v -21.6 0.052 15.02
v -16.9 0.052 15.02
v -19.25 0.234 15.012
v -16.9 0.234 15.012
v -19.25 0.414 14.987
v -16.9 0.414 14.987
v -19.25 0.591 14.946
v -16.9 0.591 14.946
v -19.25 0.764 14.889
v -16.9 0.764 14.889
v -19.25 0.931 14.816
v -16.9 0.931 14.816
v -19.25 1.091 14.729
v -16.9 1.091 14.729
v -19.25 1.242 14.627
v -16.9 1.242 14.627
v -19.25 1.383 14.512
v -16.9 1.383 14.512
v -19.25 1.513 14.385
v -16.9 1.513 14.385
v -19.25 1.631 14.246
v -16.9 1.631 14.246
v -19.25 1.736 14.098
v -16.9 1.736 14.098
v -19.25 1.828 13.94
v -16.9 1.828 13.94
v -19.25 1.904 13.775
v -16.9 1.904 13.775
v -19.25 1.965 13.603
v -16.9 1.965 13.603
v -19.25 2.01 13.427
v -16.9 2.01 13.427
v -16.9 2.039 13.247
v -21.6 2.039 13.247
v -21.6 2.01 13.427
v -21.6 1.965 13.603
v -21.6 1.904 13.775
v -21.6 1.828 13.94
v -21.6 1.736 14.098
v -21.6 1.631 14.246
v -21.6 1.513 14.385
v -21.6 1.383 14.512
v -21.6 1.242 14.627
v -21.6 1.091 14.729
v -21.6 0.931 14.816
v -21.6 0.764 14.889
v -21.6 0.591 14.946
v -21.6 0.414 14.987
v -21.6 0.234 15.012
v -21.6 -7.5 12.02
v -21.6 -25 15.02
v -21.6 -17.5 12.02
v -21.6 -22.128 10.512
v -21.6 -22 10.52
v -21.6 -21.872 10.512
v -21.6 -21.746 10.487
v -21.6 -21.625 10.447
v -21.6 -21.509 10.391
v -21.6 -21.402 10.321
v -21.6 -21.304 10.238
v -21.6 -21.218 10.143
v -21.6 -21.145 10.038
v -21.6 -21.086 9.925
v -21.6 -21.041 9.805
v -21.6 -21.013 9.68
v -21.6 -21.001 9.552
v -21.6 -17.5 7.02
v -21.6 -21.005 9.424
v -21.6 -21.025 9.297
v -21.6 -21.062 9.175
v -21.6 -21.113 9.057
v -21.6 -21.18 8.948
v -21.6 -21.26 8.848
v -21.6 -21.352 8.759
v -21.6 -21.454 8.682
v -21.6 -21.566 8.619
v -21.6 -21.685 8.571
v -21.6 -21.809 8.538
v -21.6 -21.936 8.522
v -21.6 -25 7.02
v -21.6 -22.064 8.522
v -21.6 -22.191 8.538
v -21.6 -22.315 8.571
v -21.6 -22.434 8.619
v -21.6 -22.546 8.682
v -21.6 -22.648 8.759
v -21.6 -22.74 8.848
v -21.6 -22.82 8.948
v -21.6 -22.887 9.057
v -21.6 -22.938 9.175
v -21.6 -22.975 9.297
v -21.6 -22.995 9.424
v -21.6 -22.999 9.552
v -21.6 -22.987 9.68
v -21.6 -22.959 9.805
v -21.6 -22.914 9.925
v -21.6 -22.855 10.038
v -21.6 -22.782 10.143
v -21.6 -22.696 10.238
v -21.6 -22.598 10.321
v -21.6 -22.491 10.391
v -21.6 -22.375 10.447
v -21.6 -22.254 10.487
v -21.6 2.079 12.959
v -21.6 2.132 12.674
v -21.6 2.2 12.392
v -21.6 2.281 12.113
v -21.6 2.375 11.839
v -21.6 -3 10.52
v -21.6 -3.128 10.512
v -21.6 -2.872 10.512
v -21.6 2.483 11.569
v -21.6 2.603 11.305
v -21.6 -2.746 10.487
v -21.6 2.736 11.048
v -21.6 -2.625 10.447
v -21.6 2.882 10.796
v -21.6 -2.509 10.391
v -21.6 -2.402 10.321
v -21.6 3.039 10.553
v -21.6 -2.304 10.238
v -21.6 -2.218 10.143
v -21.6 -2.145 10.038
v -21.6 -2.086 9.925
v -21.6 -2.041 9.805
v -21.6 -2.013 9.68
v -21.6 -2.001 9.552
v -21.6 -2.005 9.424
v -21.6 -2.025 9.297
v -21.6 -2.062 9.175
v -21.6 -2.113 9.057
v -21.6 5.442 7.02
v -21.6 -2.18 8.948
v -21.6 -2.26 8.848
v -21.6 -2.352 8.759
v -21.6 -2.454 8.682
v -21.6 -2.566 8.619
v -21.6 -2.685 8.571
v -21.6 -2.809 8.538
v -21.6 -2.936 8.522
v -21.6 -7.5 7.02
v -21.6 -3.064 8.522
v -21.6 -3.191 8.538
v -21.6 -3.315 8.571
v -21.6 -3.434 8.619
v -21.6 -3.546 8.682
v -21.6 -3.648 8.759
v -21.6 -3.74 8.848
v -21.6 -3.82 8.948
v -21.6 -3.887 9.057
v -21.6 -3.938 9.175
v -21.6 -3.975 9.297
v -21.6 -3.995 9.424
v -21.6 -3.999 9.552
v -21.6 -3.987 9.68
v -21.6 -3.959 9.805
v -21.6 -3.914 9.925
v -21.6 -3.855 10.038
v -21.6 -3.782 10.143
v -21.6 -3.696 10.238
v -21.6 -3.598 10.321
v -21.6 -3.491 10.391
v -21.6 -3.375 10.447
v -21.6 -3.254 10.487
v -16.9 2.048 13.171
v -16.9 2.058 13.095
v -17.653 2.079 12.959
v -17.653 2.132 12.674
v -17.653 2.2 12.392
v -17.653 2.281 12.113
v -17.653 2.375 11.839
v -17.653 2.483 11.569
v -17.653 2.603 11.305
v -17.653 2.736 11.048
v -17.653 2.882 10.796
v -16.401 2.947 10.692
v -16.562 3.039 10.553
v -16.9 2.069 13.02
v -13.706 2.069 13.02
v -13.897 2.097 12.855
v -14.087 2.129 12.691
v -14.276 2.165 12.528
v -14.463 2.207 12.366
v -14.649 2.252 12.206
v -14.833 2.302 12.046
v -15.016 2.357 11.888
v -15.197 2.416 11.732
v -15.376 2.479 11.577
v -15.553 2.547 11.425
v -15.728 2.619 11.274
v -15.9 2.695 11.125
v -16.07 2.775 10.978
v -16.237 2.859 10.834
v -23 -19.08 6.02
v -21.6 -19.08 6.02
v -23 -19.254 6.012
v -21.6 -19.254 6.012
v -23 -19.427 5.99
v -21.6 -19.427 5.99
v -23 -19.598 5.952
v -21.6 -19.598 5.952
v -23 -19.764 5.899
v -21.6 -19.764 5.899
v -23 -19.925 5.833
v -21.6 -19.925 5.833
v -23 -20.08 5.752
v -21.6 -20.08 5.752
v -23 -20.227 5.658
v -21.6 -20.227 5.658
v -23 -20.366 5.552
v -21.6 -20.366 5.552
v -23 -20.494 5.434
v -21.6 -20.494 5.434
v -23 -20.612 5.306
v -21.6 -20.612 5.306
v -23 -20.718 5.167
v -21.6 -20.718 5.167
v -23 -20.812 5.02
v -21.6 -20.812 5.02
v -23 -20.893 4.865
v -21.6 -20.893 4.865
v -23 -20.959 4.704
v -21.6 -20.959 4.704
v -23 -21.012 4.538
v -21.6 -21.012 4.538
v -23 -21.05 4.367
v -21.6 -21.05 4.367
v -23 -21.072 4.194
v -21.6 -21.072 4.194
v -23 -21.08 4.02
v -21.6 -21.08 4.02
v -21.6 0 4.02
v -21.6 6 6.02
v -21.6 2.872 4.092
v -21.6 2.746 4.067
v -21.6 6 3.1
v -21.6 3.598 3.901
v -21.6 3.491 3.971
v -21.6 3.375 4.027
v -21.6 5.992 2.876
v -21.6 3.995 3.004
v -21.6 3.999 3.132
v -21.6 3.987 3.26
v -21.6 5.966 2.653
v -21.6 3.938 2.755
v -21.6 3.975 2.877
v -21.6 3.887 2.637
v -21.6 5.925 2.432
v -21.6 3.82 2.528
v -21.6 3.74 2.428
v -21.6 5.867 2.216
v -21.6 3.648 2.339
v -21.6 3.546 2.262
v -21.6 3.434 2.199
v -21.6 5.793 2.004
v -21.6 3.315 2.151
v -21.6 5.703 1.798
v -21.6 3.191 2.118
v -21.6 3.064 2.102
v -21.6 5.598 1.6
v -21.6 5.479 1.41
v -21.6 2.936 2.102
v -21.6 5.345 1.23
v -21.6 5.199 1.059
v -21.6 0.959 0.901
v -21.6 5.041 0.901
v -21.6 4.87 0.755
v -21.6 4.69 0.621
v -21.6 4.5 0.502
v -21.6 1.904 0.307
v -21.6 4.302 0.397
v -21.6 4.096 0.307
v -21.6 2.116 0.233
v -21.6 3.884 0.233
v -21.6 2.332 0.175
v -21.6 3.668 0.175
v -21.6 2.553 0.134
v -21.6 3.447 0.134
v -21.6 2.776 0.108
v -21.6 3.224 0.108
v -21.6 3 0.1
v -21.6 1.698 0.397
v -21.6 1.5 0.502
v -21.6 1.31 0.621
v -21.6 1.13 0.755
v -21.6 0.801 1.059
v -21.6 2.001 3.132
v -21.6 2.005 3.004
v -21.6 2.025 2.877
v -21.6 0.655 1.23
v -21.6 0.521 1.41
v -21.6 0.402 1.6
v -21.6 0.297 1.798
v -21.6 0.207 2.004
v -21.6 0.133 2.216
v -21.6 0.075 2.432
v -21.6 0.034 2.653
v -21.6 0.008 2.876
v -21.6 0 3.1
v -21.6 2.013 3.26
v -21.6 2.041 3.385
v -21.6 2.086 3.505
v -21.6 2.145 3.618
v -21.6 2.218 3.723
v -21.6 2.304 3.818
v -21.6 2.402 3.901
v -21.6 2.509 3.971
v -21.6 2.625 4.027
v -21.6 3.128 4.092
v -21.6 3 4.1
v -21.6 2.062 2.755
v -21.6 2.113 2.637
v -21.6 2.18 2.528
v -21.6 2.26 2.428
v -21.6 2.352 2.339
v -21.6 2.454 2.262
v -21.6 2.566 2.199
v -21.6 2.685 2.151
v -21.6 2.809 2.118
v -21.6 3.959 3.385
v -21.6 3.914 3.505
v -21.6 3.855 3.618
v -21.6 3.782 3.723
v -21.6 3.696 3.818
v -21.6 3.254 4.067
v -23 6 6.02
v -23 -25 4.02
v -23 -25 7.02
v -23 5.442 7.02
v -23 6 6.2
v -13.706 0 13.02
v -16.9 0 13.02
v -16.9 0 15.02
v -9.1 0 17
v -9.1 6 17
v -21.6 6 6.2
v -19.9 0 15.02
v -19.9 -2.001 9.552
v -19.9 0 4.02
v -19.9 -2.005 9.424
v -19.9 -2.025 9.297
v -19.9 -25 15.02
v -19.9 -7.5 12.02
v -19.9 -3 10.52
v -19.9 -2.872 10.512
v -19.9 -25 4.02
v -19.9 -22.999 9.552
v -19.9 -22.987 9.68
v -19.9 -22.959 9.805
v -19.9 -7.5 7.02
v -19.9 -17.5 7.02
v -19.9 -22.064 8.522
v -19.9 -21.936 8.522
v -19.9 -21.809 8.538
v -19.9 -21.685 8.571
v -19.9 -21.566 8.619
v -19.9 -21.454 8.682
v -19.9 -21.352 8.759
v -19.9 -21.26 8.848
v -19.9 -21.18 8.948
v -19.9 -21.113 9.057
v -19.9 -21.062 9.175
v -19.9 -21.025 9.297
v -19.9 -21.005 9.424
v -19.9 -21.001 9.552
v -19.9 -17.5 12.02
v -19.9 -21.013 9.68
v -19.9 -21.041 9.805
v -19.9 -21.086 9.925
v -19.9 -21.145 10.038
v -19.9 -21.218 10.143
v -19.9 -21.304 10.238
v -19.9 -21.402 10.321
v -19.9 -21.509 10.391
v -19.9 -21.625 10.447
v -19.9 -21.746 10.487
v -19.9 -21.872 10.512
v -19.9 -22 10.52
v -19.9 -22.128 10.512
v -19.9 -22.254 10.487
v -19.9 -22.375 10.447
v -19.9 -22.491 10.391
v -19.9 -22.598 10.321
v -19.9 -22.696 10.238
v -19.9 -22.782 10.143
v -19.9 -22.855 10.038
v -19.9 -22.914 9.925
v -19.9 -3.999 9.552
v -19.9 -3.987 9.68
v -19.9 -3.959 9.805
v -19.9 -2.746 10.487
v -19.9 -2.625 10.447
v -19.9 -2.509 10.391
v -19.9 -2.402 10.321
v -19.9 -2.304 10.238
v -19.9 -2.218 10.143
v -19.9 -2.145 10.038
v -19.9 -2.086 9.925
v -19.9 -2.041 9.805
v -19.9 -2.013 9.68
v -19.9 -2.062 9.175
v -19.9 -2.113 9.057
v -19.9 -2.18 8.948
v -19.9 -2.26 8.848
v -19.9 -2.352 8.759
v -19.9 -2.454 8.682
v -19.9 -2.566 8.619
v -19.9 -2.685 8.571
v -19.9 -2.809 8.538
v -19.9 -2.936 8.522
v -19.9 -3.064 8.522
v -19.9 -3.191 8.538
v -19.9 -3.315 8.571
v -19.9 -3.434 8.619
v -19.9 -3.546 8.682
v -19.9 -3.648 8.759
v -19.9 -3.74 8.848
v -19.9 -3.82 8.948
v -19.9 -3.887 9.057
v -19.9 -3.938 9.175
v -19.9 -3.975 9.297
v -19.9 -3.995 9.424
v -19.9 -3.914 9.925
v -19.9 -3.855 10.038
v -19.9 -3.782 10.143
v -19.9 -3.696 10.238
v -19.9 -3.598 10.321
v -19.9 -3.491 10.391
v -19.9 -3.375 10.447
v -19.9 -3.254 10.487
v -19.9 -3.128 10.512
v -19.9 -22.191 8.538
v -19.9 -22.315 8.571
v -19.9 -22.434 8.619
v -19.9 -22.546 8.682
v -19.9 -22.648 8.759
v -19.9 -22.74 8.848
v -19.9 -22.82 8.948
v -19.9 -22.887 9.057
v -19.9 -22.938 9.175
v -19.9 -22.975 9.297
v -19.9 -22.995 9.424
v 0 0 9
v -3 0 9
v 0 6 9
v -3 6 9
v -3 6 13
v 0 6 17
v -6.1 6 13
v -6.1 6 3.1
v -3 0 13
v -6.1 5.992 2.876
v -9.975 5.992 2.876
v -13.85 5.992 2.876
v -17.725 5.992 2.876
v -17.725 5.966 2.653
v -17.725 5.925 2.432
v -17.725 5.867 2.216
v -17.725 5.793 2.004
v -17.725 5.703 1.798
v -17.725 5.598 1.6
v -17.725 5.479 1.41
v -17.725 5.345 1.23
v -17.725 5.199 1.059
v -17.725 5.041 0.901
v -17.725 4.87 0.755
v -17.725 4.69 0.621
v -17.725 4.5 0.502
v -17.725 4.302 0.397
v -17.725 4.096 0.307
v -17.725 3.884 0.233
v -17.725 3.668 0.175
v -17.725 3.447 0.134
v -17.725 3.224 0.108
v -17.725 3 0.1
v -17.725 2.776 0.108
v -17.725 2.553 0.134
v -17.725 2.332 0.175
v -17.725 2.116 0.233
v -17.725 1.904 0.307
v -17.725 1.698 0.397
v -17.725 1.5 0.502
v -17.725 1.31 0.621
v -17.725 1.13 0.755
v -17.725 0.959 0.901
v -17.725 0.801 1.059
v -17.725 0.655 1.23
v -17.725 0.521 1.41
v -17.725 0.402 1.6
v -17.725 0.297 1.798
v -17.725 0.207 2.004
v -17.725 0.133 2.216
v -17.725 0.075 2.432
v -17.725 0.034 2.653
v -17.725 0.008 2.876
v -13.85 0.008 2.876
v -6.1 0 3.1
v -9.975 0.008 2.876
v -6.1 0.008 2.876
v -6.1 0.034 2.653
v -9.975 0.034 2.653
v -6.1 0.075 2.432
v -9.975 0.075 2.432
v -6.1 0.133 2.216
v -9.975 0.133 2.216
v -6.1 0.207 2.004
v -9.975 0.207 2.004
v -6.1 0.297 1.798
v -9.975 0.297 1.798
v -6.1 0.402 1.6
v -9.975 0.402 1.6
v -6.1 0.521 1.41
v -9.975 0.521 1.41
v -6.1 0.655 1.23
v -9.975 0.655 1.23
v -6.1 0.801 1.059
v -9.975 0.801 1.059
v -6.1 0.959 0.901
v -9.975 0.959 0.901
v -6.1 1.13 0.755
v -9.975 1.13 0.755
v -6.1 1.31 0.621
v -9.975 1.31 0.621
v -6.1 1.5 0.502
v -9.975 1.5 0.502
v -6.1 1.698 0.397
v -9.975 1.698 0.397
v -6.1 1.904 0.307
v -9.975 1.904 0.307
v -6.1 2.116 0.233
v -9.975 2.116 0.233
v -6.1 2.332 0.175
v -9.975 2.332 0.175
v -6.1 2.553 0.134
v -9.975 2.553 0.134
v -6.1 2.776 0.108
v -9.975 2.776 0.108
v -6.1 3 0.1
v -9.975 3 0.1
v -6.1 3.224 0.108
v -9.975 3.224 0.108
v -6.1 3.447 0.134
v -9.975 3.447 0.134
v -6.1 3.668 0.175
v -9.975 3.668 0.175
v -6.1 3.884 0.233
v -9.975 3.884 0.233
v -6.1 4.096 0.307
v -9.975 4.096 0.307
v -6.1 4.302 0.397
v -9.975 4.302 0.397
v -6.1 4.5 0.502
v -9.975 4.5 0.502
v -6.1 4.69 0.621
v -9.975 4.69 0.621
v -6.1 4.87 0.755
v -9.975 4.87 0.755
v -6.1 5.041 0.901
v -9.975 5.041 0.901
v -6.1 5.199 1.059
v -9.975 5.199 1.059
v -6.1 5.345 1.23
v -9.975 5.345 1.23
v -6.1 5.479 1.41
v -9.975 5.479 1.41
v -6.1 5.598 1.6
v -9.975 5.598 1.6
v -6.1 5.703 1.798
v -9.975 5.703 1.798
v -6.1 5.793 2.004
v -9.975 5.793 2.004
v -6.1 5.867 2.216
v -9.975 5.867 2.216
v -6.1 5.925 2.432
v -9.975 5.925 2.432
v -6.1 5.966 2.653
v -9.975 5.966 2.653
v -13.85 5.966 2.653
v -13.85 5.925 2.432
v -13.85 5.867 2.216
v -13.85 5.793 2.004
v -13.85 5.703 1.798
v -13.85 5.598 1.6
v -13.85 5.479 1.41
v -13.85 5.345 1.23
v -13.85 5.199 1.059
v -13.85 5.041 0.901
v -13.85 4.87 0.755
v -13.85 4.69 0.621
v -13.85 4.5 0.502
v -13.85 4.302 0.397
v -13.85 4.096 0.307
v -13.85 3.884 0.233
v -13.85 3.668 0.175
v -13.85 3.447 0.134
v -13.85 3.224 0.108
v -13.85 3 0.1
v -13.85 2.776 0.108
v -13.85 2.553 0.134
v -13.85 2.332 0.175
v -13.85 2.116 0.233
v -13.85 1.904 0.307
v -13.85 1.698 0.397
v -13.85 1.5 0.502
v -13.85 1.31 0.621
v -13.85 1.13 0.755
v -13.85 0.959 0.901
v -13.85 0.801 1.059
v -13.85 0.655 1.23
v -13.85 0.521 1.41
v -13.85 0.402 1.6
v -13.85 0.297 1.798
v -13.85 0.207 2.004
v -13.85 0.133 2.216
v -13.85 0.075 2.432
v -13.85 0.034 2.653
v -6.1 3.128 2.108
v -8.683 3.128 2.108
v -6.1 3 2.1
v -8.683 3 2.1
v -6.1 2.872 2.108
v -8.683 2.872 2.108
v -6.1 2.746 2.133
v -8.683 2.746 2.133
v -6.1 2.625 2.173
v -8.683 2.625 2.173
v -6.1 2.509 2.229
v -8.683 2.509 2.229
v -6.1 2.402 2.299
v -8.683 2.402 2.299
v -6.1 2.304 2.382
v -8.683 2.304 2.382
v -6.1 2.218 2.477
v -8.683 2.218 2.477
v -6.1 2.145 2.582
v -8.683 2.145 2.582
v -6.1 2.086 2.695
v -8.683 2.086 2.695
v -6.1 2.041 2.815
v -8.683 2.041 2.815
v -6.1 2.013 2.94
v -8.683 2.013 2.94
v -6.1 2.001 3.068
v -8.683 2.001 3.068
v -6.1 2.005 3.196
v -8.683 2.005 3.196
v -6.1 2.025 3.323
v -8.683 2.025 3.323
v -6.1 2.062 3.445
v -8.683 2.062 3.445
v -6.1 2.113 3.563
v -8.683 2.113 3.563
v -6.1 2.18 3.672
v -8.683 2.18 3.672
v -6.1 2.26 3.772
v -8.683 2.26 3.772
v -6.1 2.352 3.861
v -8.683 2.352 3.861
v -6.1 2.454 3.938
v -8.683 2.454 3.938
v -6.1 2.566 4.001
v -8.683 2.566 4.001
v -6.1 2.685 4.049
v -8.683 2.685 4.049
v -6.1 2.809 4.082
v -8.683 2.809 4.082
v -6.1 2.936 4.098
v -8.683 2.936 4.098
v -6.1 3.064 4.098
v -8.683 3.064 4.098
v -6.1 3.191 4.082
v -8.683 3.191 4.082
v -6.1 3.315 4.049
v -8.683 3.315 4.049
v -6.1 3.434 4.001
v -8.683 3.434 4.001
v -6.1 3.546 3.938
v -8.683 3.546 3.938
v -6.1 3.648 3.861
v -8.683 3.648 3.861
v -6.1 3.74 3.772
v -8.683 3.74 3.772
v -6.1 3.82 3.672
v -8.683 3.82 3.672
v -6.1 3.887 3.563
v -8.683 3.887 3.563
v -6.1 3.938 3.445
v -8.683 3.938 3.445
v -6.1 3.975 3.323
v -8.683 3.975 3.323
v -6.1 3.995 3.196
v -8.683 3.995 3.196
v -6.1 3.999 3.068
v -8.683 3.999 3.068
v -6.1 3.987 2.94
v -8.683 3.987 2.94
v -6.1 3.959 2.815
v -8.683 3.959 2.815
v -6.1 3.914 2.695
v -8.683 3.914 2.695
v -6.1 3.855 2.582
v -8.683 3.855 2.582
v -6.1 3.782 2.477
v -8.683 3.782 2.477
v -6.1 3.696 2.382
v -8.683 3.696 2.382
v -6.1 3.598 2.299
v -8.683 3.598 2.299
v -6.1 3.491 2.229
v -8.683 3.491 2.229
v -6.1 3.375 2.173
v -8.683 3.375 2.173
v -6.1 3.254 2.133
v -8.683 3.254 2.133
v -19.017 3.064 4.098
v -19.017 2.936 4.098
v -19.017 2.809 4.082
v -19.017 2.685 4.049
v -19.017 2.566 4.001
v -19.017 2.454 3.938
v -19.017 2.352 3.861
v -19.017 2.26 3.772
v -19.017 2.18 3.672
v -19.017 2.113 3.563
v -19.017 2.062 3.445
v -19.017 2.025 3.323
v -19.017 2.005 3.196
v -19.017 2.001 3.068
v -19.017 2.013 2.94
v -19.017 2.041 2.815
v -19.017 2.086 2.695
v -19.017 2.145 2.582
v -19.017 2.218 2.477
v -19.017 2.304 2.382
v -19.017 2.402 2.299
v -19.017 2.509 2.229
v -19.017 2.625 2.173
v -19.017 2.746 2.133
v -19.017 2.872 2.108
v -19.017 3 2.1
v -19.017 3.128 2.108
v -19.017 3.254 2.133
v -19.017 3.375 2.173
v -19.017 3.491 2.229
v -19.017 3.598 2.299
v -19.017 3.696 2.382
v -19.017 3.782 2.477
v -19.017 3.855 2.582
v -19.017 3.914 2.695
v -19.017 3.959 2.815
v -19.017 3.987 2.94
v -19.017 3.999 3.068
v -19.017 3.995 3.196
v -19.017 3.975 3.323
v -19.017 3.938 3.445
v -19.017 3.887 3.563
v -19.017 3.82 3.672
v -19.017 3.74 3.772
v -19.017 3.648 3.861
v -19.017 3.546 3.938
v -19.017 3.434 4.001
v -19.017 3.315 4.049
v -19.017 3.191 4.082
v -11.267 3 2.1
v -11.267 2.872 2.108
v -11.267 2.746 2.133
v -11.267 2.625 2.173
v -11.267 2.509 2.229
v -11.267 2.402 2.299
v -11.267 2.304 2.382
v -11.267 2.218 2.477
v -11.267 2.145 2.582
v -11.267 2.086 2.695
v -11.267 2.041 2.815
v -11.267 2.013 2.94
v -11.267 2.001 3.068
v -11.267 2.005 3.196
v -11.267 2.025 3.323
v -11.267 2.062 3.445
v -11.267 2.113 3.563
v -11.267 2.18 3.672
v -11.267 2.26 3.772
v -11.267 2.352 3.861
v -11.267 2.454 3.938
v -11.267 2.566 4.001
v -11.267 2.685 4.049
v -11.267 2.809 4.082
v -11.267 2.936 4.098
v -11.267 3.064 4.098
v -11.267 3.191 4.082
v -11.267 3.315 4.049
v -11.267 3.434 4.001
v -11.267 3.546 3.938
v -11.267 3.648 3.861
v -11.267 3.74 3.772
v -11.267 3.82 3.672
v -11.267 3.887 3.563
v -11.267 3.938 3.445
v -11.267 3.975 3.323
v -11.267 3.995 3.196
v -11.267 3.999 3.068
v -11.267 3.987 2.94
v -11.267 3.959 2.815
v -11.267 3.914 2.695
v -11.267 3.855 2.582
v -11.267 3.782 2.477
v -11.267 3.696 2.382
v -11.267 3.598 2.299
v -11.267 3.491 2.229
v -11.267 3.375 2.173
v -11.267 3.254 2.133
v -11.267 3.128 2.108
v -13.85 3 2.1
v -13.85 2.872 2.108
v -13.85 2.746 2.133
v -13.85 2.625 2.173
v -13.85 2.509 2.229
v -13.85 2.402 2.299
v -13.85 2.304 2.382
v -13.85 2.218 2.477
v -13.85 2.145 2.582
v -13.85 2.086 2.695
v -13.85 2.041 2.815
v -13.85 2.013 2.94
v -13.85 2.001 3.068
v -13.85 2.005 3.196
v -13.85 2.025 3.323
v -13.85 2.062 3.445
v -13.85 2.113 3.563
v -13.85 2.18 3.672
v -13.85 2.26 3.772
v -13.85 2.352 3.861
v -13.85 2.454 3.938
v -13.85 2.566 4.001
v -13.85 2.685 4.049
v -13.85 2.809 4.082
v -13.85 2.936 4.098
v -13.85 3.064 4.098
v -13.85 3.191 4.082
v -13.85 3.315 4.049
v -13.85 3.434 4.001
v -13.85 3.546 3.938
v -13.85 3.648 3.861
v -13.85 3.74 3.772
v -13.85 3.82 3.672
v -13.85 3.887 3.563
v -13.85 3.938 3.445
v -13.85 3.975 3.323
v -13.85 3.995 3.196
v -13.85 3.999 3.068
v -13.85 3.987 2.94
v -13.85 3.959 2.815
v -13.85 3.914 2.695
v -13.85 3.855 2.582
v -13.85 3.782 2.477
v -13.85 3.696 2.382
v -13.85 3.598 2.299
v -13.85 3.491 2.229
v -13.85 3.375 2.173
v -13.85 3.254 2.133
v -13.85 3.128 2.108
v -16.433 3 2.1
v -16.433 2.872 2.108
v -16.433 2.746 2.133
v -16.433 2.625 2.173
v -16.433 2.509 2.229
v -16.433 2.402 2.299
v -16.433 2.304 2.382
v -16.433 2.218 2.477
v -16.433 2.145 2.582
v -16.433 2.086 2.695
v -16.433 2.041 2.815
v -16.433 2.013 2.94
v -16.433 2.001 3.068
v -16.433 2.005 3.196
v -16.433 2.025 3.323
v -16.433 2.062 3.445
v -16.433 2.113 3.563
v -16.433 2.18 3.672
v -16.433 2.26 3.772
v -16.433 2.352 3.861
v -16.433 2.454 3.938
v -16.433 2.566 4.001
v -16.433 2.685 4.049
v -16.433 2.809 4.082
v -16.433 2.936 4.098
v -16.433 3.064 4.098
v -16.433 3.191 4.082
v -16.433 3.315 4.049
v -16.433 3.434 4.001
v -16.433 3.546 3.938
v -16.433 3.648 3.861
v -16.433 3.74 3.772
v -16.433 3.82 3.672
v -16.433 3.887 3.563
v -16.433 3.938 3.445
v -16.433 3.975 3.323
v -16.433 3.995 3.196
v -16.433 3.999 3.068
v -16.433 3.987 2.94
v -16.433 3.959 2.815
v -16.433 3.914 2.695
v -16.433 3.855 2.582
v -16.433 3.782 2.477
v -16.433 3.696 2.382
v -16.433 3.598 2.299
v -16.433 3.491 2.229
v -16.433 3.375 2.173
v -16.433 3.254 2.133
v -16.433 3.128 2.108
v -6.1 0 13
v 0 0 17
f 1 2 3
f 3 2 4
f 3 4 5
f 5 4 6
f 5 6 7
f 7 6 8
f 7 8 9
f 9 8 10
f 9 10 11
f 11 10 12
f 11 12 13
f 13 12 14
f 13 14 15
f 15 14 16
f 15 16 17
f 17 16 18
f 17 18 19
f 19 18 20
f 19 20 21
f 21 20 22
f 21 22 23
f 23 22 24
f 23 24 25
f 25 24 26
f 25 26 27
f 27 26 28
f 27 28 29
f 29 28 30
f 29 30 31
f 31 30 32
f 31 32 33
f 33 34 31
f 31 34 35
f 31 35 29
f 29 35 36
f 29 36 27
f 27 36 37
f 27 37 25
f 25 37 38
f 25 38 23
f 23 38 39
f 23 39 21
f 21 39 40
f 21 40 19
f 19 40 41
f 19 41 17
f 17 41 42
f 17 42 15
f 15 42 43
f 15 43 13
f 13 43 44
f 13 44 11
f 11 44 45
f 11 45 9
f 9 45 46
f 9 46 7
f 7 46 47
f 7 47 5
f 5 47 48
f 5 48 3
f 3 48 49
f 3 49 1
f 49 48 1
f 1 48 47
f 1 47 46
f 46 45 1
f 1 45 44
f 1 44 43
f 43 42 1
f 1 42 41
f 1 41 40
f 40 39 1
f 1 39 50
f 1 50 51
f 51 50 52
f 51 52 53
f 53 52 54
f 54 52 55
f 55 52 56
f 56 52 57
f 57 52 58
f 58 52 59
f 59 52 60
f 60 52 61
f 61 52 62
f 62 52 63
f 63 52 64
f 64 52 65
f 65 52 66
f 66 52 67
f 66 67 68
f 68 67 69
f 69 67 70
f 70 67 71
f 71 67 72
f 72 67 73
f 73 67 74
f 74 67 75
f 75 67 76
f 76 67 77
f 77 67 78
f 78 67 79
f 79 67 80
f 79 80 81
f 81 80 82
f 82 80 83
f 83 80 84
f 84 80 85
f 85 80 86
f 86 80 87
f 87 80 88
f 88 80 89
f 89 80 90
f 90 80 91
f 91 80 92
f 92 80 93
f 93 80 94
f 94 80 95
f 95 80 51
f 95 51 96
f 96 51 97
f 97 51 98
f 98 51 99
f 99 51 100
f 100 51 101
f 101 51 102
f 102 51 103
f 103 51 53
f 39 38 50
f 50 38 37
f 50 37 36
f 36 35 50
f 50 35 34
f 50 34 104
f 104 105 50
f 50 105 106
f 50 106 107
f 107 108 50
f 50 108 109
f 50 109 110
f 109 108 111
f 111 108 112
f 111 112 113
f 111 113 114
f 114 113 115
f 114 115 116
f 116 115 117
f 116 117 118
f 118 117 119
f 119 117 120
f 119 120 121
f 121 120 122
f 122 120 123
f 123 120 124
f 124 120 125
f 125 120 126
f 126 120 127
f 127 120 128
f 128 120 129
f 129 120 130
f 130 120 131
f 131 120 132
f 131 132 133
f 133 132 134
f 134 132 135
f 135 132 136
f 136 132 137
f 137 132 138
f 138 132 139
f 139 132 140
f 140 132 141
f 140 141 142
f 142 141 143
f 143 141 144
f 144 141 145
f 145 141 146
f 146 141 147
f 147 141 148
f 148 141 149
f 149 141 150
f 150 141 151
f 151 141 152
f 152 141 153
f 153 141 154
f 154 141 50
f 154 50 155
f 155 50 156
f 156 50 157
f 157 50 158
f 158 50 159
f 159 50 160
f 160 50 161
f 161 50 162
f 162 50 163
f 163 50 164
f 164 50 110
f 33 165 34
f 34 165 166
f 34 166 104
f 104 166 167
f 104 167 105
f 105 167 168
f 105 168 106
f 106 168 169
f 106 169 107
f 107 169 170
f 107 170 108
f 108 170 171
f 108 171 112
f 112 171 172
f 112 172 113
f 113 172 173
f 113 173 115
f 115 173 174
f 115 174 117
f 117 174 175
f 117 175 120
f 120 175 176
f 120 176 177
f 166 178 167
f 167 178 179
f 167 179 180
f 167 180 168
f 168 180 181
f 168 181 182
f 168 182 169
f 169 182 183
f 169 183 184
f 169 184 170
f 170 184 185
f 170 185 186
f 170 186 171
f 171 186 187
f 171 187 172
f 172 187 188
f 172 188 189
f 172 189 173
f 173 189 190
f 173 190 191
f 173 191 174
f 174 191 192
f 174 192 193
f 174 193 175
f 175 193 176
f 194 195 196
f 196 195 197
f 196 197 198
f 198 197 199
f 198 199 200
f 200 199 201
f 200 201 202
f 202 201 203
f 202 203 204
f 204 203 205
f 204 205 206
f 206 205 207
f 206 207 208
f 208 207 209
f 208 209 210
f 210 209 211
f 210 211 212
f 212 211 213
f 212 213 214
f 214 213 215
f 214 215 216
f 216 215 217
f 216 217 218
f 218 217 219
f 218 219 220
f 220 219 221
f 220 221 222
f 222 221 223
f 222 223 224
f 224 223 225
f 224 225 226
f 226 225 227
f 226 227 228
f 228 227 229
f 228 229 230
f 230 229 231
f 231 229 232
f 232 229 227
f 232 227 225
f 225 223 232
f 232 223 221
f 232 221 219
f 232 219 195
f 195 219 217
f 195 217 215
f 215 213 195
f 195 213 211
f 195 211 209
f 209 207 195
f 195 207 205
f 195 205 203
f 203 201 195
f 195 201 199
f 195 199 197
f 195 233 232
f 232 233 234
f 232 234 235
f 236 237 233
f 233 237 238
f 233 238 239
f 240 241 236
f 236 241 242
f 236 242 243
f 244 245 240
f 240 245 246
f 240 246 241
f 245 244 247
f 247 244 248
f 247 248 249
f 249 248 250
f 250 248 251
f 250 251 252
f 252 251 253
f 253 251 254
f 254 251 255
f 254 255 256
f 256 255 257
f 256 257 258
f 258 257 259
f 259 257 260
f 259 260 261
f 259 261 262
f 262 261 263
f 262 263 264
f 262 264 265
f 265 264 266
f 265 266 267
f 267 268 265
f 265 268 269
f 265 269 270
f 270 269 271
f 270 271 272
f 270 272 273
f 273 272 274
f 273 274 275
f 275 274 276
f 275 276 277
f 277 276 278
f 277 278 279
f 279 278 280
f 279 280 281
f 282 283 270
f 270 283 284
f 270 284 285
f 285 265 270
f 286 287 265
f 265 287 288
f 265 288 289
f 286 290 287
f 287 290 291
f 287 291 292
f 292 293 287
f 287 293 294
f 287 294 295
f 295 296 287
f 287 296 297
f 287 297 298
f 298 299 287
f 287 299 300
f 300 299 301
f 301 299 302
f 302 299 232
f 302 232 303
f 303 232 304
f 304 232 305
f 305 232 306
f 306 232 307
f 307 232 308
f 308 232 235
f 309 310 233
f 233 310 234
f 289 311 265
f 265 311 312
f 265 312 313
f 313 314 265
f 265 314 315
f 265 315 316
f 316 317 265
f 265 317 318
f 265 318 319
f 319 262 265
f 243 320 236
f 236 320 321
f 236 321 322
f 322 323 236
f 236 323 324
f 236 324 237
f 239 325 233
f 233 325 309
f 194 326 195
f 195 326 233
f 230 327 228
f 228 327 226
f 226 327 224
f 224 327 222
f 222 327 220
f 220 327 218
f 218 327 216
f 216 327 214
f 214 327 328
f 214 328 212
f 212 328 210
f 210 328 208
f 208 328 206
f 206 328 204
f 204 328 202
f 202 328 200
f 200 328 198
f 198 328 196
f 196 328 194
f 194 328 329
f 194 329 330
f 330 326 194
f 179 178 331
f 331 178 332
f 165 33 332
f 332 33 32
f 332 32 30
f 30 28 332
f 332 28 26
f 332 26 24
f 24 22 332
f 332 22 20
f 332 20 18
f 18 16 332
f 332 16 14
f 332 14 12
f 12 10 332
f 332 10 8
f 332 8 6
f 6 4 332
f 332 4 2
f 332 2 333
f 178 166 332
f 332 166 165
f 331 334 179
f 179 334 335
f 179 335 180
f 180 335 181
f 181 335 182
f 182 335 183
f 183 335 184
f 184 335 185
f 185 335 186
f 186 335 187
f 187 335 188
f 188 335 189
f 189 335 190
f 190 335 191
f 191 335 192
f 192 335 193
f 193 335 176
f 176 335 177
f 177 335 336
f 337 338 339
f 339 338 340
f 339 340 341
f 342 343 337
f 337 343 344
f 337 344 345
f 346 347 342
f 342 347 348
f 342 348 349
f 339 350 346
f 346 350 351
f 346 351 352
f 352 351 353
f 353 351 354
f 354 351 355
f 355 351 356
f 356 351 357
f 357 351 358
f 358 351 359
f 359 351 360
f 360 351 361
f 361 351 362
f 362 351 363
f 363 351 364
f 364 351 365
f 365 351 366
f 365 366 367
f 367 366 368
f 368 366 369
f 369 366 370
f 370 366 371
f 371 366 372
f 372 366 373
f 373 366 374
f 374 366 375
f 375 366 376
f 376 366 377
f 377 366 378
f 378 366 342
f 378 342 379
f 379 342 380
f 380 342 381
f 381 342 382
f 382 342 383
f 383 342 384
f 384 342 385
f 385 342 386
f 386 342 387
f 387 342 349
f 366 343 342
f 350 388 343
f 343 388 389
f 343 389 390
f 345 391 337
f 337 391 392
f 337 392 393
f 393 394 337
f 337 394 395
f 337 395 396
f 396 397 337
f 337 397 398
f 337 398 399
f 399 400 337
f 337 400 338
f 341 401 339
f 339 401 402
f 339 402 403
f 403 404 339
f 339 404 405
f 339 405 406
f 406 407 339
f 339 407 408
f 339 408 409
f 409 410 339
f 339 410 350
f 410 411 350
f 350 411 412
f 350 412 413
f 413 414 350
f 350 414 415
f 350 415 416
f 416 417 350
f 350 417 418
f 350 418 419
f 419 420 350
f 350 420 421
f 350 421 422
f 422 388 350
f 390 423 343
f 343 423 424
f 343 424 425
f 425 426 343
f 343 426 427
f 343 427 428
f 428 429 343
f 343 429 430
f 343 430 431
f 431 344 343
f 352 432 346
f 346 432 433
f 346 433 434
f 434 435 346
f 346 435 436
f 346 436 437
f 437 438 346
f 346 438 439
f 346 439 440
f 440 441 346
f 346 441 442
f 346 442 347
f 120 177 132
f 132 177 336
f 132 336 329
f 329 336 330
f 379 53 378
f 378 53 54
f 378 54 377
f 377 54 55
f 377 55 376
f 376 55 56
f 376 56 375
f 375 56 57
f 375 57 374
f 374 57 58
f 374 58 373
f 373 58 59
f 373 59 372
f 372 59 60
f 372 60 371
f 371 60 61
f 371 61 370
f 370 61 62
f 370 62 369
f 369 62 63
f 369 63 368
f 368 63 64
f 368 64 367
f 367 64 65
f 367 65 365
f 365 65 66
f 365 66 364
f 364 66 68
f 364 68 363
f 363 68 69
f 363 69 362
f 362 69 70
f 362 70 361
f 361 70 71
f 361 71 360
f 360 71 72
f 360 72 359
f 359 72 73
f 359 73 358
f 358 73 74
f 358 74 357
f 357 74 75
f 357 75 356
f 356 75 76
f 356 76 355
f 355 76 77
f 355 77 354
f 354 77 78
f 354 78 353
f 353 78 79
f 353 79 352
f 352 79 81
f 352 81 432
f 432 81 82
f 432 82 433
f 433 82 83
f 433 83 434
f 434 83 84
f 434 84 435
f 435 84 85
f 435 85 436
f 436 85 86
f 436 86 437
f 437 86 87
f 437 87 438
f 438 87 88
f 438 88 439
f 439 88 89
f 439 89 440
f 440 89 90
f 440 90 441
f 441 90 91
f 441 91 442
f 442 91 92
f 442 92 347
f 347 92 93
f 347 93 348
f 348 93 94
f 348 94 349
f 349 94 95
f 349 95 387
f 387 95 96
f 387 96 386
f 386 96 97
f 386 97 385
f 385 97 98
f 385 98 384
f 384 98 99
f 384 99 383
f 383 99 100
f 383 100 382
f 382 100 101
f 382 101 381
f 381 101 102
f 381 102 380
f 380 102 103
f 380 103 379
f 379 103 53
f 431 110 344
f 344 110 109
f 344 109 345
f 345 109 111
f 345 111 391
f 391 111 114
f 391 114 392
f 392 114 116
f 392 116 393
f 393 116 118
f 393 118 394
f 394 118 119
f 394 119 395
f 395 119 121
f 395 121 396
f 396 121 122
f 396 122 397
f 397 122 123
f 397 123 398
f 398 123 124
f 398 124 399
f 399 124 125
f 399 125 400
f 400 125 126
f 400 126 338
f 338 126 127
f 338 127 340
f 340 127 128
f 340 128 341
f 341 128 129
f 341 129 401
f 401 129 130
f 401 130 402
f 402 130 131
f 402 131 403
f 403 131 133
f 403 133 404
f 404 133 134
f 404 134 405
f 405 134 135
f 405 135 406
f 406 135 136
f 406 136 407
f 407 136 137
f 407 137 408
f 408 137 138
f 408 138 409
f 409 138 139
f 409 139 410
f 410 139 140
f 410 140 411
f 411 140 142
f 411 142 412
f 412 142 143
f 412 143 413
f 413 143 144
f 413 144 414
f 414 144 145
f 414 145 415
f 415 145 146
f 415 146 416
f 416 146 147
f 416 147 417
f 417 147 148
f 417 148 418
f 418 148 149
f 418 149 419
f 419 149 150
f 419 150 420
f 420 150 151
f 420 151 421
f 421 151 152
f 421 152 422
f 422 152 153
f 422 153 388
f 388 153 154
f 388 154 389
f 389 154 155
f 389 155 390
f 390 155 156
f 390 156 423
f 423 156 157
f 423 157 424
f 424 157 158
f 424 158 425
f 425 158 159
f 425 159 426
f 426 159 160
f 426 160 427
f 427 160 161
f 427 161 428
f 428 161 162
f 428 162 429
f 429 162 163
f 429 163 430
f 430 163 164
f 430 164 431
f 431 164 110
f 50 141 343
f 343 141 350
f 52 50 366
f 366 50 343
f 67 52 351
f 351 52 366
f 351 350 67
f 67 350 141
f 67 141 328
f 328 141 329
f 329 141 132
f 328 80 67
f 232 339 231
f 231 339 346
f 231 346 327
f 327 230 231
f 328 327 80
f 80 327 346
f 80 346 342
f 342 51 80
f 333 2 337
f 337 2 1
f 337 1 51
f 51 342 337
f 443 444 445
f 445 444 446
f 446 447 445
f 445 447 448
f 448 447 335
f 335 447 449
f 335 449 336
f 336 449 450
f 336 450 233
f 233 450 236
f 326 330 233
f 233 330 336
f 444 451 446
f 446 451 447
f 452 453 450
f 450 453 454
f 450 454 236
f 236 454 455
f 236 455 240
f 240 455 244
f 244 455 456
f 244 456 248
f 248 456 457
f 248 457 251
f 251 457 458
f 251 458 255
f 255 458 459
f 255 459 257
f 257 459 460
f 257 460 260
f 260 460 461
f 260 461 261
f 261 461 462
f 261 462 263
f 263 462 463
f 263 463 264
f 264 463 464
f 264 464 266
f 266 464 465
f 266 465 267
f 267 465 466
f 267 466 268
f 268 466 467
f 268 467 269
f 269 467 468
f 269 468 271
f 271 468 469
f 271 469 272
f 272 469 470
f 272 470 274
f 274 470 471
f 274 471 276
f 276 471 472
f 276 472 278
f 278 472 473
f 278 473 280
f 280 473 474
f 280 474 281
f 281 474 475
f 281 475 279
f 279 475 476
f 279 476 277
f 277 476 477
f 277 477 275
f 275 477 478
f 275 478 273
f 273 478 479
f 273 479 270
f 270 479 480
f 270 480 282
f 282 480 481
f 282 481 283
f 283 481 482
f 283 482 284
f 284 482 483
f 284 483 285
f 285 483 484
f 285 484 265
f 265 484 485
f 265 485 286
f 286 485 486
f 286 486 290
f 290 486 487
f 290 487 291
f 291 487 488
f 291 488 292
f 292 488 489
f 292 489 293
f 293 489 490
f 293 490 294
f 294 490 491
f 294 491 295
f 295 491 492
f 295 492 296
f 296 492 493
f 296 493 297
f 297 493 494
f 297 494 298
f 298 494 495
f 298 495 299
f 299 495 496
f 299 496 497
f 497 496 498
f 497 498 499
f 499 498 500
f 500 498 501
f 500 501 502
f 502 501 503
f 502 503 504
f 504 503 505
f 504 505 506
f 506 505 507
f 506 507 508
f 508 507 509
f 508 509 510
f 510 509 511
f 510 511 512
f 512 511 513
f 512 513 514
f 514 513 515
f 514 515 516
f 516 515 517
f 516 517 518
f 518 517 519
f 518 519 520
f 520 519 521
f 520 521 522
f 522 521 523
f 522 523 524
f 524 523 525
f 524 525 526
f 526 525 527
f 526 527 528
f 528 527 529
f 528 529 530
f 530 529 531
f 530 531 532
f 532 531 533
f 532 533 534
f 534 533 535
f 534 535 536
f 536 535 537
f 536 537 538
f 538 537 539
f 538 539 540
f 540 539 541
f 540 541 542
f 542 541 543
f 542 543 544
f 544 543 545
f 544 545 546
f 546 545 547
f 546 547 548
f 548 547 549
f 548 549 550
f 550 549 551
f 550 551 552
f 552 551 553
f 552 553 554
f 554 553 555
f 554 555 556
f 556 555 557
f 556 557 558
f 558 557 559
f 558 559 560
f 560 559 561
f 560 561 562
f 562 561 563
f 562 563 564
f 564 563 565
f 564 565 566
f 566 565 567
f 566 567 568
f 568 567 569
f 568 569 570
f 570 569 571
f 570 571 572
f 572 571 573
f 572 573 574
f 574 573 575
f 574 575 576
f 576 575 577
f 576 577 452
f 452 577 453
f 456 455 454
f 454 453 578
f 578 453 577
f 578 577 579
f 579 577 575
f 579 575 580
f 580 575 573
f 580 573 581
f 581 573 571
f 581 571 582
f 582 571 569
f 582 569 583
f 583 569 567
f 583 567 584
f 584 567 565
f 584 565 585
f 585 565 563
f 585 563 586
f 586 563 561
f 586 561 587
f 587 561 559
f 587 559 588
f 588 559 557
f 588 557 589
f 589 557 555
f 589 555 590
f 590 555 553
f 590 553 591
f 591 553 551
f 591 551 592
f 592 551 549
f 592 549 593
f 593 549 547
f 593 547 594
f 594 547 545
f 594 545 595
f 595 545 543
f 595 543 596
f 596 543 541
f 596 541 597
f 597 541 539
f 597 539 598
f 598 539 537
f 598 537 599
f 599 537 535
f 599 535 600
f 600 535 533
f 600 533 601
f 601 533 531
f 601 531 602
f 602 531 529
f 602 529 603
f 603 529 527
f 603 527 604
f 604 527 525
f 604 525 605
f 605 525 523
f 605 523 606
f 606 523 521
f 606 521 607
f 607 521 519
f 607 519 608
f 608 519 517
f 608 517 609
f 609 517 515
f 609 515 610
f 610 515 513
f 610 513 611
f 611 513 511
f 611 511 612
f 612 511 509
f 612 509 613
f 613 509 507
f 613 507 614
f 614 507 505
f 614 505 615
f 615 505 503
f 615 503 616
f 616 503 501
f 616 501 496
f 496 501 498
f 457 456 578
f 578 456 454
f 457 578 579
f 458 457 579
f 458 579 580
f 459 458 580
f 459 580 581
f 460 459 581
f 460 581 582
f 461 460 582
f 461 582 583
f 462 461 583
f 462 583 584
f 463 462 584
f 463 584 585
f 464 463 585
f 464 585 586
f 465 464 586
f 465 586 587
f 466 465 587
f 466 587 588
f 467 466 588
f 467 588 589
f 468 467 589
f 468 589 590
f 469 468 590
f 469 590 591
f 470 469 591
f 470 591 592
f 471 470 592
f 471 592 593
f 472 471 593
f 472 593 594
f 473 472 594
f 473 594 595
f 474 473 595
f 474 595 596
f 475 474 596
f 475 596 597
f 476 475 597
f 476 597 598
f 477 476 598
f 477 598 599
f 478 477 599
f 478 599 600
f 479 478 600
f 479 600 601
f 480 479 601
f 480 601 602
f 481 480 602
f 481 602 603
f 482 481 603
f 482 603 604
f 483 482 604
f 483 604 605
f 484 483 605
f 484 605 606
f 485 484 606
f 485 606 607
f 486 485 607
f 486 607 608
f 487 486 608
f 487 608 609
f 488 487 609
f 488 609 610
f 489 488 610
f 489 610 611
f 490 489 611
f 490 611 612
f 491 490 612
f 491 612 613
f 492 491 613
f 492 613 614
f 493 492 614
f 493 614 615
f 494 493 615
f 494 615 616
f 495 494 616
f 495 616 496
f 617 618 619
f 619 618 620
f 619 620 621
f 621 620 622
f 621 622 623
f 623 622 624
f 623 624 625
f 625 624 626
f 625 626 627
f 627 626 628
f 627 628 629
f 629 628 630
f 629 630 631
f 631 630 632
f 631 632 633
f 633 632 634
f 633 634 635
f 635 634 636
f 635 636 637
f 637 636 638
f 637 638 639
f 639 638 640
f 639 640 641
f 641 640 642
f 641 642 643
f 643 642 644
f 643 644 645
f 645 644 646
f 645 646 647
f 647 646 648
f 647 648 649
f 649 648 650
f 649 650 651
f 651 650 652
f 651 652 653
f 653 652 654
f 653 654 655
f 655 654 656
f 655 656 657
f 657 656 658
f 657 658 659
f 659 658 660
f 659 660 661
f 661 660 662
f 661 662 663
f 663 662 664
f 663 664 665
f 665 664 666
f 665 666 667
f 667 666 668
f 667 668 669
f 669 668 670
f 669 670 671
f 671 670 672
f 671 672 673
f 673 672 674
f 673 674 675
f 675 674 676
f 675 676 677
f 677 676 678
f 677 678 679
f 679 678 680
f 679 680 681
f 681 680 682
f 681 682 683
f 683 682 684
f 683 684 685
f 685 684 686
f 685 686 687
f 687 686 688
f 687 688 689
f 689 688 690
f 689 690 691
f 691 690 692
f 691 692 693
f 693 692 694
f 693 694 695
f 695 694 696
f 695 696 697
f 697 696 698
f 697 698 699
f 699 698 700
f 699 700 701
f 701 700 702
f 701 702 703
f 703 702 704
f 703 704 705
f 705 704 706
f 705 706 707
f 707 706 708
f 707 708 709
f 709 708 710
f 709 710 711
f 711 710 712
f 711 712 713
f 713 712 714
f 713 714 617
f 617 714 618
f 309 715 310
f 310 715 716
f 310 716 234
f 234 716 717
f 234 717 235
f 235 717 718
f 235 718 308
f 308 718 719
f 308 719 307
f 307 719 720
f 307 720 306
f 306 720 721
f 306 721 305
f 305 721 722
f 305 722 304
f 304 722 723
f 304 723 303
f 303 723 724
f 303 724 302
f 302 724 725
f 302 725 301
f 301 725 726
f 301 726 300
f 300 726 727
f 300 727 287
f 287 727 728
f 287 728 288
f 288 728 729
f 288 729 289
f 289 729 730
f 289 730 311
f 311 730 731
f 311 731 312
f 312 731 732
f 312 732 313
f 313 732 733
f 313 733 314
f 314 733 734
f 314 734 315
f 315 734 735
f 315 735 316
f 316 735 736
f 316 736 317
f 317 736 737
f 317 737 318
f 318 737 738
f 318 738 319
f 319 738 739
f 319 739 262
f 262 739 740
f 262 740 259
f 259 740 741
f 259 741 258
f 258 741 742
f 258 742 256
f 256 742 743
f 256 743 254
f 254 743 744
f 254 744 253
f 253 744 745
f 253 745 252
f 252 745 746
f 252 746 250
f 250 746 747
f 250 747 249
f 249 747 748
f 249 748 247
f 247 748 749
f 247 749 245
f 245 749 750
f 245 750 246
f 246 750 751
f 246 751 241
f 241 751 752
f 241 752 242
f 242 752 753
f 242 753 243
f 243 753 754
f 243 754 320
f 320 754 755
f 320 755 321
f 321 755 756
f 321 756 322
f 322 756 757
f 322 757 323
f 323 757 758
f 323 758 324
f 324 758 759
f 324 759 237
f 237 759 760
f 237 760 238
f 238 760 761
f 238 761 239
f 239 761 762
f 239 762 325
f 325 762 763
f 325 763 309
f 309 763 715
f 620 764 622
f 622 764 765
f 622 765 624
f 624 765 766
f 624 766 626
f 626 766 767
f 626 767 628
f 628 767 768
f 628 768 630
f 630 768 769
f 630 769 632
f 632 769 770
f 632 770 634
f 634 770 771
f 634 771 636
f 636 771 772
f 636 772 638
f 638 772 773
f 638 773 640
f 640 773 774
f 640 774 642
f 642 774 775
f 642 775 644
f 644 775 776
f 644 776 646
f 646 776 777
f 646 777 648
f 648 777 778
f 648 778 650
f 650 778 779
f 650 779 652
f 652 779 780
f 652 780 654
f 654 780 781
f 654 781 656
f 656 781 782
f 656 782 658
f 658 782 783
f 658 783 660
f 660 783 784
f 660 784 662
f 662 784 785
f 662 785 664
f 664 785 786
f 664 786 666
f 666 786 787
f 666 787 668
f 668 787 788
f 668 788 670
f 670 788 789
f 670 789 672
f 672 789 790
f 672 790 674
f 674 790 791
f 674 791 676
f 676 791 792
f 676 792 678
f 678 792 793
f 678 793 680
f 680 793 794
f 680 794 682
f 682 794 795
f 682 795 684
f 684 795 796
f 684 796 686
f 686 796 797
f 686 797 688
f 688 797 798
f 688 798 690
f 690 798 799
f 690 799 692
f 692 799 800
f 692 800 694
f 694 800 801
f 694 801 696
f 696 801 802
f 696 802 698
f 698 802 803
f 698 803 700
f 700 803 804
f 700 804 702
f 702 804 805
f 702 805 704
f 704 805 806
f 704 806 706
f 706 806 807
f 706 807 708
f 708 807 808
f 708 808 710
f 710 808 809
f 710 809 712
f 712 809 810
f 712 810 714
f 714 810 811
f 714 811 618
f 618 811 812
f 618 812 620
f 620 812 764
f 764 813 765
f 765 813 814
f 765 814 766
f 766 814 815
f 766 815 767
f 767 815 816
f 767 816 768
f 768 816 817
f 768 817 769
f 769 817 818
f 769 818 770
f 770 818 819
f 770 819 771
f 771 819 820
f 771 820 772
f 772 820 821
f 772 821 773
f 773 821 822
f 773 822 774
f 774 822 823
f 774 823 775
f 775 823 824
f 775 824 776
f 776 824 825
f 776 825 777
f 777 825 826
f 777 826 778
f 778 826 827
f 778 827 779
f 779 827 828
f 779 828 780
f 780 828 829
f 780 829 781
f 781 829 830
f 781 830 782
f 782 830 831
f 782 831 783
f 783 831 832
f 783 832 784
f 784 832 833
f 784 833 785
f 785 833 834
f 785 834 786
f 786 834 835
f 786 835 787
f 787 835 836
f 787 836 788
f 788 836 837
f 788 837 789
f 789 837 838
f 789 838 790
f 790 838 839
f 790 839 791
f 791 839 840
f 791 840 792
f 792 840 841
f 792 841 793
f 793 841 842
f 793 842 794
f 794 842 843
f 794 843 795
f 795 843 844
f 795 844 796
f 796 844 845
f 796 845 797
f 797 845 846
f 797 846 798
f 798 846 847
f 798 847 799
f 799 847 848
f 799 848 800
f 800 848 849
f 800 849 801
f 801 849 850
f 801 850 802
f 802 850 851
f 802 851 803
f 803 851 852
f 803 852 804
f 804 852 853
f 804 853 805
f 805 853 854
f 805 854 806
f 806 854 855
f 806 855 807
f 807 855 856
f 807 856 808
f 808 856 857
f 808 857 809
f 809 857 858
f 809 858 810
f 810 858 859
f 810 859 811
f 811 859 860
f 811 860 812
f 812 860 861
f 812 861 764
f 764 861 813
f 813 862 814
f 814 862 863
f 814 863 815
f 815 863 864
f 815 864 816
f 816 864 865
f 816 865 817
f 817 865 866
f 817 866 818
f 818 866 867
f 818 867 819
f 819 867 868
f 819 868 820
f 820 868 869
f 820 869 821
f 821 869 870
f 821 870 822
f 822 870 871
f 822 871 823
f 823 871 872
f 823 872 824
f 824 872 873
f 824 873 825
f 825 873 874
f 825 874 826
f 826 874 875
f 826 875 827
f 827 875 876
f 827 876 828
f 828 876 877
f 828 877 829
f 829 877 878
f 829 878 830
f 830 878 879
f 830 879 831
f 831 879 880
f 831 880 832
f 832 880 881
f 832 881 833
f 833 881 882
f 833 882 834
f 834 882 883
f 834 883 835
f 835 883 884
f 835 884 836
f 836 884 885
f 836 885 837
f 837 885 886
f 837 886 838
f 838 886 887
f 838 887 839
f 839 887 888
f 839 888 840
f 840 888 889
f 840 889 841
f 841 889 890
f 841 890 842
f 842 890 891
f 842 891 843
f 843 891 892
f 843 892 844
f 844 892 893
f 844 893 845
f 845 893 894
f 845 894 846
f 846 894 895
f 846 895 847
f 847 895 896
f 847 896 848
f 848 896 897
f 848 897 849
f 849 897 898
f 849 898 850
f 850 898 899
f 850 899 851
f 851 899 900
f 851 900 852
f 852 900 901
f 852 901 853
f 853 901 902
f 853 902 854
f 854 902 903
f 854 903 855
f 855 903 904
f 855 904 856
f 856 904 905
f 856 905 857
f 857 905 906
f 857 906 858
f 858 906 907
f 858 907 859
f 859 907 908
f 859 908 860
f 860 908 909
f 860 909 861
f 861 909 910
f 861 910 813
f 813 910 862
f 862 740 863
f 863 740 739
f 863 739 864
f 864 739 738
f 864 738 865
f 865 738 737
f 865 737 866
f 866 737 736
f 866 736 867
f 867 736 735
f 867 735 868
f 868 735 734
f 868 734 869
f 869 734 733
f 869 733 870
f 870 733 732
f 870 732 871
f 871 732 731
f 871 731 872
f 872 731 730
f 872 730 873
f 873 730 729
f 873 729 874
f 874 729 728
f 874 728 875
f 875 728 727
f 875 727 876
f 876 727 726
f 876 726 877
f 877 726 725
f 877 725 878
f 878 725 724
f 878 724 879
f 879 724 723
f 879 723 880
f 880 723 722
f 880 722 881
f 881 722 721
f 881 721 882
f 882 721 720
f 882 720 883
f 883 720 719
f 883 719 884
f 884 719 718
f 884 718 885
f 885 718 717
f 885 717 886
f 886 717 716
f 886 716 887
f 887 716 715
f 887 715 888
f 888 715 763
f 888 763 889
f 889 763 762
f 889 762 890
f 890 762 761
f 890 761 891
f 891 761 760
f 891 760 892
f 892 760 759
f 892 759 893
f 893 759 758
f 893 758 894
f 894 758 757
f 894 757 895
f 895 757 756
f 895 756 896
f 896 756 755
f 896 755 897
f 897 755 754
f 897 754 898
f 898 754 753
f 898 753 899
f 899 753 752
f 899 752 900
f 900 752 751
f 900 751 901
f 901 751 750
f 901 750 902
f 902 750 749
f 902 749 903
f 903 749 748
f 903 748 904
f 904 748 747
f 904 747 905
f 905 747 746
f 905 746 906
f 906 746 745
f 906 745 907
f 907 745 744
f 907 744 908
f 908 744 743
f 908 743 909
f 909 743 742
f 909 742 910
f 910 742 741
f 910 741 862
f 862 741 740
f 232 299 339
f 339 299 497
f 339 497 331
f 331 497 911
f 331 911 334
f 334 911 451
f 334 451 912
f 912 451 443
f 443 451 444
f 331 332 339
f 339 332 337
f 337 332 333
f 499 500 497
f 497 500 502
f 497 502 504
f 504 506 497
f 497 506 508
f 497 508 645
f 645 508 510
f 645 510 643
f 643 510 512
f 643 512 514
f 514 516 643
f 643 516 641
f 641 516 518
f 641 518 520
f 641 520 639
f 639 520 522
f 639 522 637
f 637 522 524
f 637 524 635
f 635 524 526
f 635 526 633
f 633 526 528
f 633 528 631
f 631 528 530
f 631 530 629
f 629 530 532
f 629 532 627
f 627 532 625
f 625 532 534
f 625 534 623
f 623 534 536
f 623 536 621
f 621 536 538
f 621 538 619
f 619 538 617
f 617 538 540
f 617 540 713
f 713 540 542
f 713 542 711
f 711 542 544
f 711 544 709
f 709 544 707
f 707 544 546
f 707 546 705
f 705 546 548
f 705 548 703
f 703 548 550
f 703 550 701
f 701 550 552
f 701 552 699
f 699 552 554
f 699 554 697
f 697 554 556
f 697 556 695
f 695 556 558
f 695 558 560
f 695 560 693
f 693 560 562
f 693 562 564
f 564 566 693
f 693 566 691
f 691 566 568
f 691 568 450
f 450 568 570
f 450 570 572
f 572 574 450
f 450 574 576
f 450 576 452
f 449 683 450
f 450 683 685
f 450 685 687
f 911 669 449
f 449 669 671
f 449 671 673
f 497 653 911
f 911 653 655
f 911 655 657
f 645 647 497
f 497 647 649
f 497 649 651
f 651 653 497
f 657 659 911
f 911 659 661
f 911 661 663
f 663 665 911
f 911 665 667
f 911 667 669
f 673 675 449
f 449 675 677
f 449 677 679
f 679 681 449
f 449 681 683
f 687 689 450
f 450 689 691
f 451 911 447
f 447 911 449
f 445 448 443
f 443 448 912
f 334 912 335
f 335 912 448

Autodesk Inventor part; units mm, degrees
ref_plane "YZ Plane" through (0, 0, 0) normal (1, 0, 0) x (0, 1, 0)
ref_plane "XZ Plane" through (0, 0, 0) normal (0, 1, 0) x (-1, 0, 0)
ref_plane "XY Plane" through (0, 0, 0) normal (0, 0, 1) x (1, 0, 0)
sketch "Sketch1" plane through (0, 0, 0) normal (0, 1, 0) x (-1, 0, 0)
  line L0 (0, 0) -> (21.6, 0)
  line L1 (21.6, 0) -> (21.6, 17)
  line L2 (21.6, 17) -> (0, 17)
  line L3 (0, 17) -> (0, 0)
  line L4 (6.1, 13) -> (3, 13)
  line L5 (3, 13) -> (3, 0)
  line L6 (3, 0) -> (6.1, 0)
  line L7 (6.1, 0) -> (6.1, 13)
  line L8 (21.6, 17) -> (9.1, 17)
  line L9 (9.1, 17) -> (9.1, 0)
  line L10 (9.1, 0) -> (21.6, 0)
  line L11 (21.6, 0) -> (21.6, 17)
  line L12 (9.1, 17) -> (21.6, 6.2)
  point P0 (21.6, 6.2)
  point P1 (9.1, 17)
  dimension "d1" = 17
  dimension "d2" = 3.1
  dimension "d3" = 3
  dimension "d4" = 3
  dimension "d5" = 6.2
  dimension "d17" = 13
  dimension "d18" = 12.5
extrude "Extrusion1" add sketch "Sketch1" along normal blind 6 contours L3 L2 L9 L0 L7 L4 L5 | L12 L1 L0 L9
sketch "Sketch2" plane through (-21.6, 0, 0) normal (-1, 0, 0) x (0, 0, 1)
  circle A0 centre (3.1, 3) radius 3
  line L0 (0, 0) -> (13, 0) projected
  line L1 (0, 0) -> (0, 6) projected
  line L2 (17, 6) -> (0, 6) projected
  line L3 (0, 0) -> (6.2302, 0)
  line L4 (6.2302, 0) -> (6.2302, 6)
  line L5 (6.2302, 6) -> (0, 6)
  line L6 (0, 6) -> (0, 0)
  circle A1 centre (3.1, 3) radius 1
  point P0 (3.1, 6)
  point P1 (3.1, 0)
  dimension "d8" = 3.1
  dimension "d9" = 2
extrude "Extrusion2" cut sketch "Sketch2" against normal up to surface (18.6 mm away) contours A0 L0 L1 L2 | A1
sketch "Sketch3" plane through (0, 6, 0) normal (0, 1, 0) x (1, 0, 0)
  line L0 (-3, 0) -> (-3, -13) projected
  line L1 (0, 0) -> (-3, 0) projected
  line L2 (-3, -9) -> (0, -9)
  line L3 (0, -9) -> (0, 0)
  line L4 (0, 0) -> (-3, 0)
  line L5 (-3, 0) -> (-3, -9)
  line L6 (-3, -13) -> (-6.1, -13) projected
  line L7 (-9.1, -17) -> (0, -17) projected
  dimension "d13" = 8
extrude "Extrusion3" cut sketch "Sketch3" against normal blind 10
sketch "Sketch4" plane through (-21.6, 0, 6.2) normal (-1, 0, 0) x (0, 0, 1)
  line L0 (-2.18, -25) -> (8.82, -25)
  line L1 (8.82, -25) -> (8.82, 0)
  line L2 (8.82, 0) -> (-2.18, 0)
  line L3 (-2.18, 0) -> (-2.18, -25)
  circle A0 centre (-3.1, 3) radius 1 projected
  line L4 (0, 0) -> (10.8, 0) projected
  line L5 (0, 0) -> (0, 6) projected
  line L6 (8.82, 0) -> (0, 6)
  circle A1 centre (3.32, -22) radius 1
  circle A2 centre (3.32, -3) radius 1
  line L7 (0.82, -17.5) -> (5.82, -17.5)
  line L8 (5.82, -17.5) -> (5.82, -7.5)
  line L9 (5.82, -7.5) -> (0.82, -7.5)
  line L10 (0.82, -7.5) -> (0.82, -17.5)
  point P0 (-6.2, 0)
  dimension "d19" = 0.92
  dimension "d20" = 0
  dimension "d21" = 25
  dimension "d22" = 11
  dimension "d23" = 5.5
  dimension "d24" = 5.5
  dimension "d25" = 5
  dimension "d26" = 10
  dimension "d27" = 7.5
  dimension "d28" = 3
  dimension "d29" = 2
  dimension "d30" = 2
  dimension "d51" = 19
  dimension "d52" = 3
extrude "Extrusion4" add sketch "Sketch4" against normal blind 1.7 contours L3 L2 L1 L0 | L2 L5 L6
sketch "Sketch6" plane through (0, 0, 0) normal (0, -1, 0) x (1, 0, 0)
  line L0 (-19.9, 15.02) -> (-19.9, 4.02) projected
  line L1 (-19.9, 4.02) -> (-7.9, 4.02)
  line L2 (-7.9, 4.02) -> (-7.9, 15.02)
  line L3 (-7.9, 15.02) -> (-19.9, 15.02)
  line L4 (-19.9, 15.02) -> (-19.9, 4.02)
  line L5 (-12.9, 4.02) -> (-10.3572, 4.02)
  line L6 (-10.3572, 4.02) -> (-10.3572, 15.02)
  line L7 (-10.3572, 15.02) -> (-12.9, 15.02)
  line L8 (-12.9, 15.02) -> (-12.9, 4.02)
  line L9 (-12.9, 15.02) -> (-16.9, 15.02)
  line L10 (-16.9, 15.02) -> (-16.9, 13.02)
  line L11 (-16.9, 13.02) -> (-12.9, 13.02)
  line L12 (-12.9, 13.02) -> (-12.9, 15.02)
  line L13 (-21.6, 15.02) -> (-21.6, 6.2) projected
  line L14 (-19.9, 4.02) -> (-21.6, 4.02)
  line L15 (-21.6, 4.02) -> (-21.6, 15.02)
  line L16 (-21.6, 15.02) -> (-19.9, 15.02)
  line L17 (-19.9, 15.02) -> (-19.9, 4.02)
  point P0 (0, 0)
  dimension "d33" = 12
  dimension "d34" = 7
  dimension "d35" = 4
  dimension "d36" = 2
extrude "Extrusion5" add sketch "Sketch6" against normal blind 2 contours L3 L10 L11 L8 L1 L0 | L0 L14 L15 L13 L16
sketch "Sketch7" plane through (-21.6, 3, 3.1) normal (-1, 0, 0) x (0, 0, 1)
  line L0 (8.98, -1) -> (3.1, 3) projected
  line L1 (8.98, -1) -> (3.1, -1)
  line L2 (3.1, -1) -> (3.1, 3)
  line L3 (3.1, 3) -> (8.98, 3)
  line L4 (8.98, 3) -> (8.98, -1)
  line L5 (0, 3) -> (3.1, 3) projected
  line L6 (3.1, 3) -> (8.98, -1)
  point P0 (-3.1, -3)
extrude "Extrusion6" add sketch "Sketch7" against normal blind 9 contours L1 L2 L0
sketch "Sketch8" plane through (-21.6, 3, 3.1) normal (-1, 0, 0) x (0, 0, 1)
  line L0 (-9.7709, -24.08) -> (2.92, -24.08)
  line L1 (2.92, -24.08) -> (2.92, 6.3077)
  line L2 (2.92, 6.3077) -> (-9.7709, 6.3077)
  line L3 (-9.7709, 6.3077) -> (-9.7709, -24.08)
  line L4 (11.92, -28) -> (11.92, -1) projected
  line L5 (0.92, -28) -> (11.92, -28) projected
  line L6 (0.92, -3) -> (0.92, -28) projected
  line L7 (3.1, 3) -> (8.98, -1) projected
  line L8 (0.92, -28) -> (3.92, -28)
  line L9 (3.92, -28) -> (3.92, 2.4422)
  line L10 (3.92, 2.4422) -> (0.92, 2.4422)
  line L11 (0.92, 2.4422) -> (0.92, -28)
  line L12 (3.92, -20.5) -> (3.92, -10.5) projected
  line L13 (2.92, 2.4422) -> (2.92, 3)
  line L14 (3.1, 3) -> (13.9, 3) projected
  line L15 (2.92, 2.4422) -> (3.92, 2.4422)
  line L16 (3.92, 2.4422) -> (3.92, 3)
  line L17 (3.92, 3) -> (2.92, 3)
  line L18 (2.92, 3) -> (2.92, 2.4422)
  line L19 (3.92, 2.4422) -> (3.1, 3)
  point P0 (-3.1, -3)
  point P1 (0.92, -24.08)
  point P2 (3.92, -28)
  point P3 (2.92, 3)
  dimension "d41" = 9
  dimension "d42" = 3.92
  dimension "d43" = 10.691
  dimension "d44" = 0
  dimension "d45" = 0
extrude "Extrusion7" add sketch "Sketch8" along normal blind 1.4 contours L0 L1 L10 L9 L5 L6 | L1 L17 L7 L10
fillet "Fillet1" radius 2 1 edges at (-22.3, -21.08, 6.02)
fillet "Fillet2" radius 6 1 edges at (-18.1972, 2, 12.08)
fillet "Fillet3" radius 2 1 edges at (-19.25, 2, 15.02)
equation "\"d23\" = 0.5 * d22"
equation "\"d24\" = 0.5 * d22"
equation "\"d27\" = -0.5 * d26 + 0.5 * d21"
equation "\"d28\" = -0.5 * d25 + 0.5 * d22"
equation "\"d52\" = -0.5 * d51 + 0.5 * d21"
properties part number "Pi3B_spacer_R_switch2"
